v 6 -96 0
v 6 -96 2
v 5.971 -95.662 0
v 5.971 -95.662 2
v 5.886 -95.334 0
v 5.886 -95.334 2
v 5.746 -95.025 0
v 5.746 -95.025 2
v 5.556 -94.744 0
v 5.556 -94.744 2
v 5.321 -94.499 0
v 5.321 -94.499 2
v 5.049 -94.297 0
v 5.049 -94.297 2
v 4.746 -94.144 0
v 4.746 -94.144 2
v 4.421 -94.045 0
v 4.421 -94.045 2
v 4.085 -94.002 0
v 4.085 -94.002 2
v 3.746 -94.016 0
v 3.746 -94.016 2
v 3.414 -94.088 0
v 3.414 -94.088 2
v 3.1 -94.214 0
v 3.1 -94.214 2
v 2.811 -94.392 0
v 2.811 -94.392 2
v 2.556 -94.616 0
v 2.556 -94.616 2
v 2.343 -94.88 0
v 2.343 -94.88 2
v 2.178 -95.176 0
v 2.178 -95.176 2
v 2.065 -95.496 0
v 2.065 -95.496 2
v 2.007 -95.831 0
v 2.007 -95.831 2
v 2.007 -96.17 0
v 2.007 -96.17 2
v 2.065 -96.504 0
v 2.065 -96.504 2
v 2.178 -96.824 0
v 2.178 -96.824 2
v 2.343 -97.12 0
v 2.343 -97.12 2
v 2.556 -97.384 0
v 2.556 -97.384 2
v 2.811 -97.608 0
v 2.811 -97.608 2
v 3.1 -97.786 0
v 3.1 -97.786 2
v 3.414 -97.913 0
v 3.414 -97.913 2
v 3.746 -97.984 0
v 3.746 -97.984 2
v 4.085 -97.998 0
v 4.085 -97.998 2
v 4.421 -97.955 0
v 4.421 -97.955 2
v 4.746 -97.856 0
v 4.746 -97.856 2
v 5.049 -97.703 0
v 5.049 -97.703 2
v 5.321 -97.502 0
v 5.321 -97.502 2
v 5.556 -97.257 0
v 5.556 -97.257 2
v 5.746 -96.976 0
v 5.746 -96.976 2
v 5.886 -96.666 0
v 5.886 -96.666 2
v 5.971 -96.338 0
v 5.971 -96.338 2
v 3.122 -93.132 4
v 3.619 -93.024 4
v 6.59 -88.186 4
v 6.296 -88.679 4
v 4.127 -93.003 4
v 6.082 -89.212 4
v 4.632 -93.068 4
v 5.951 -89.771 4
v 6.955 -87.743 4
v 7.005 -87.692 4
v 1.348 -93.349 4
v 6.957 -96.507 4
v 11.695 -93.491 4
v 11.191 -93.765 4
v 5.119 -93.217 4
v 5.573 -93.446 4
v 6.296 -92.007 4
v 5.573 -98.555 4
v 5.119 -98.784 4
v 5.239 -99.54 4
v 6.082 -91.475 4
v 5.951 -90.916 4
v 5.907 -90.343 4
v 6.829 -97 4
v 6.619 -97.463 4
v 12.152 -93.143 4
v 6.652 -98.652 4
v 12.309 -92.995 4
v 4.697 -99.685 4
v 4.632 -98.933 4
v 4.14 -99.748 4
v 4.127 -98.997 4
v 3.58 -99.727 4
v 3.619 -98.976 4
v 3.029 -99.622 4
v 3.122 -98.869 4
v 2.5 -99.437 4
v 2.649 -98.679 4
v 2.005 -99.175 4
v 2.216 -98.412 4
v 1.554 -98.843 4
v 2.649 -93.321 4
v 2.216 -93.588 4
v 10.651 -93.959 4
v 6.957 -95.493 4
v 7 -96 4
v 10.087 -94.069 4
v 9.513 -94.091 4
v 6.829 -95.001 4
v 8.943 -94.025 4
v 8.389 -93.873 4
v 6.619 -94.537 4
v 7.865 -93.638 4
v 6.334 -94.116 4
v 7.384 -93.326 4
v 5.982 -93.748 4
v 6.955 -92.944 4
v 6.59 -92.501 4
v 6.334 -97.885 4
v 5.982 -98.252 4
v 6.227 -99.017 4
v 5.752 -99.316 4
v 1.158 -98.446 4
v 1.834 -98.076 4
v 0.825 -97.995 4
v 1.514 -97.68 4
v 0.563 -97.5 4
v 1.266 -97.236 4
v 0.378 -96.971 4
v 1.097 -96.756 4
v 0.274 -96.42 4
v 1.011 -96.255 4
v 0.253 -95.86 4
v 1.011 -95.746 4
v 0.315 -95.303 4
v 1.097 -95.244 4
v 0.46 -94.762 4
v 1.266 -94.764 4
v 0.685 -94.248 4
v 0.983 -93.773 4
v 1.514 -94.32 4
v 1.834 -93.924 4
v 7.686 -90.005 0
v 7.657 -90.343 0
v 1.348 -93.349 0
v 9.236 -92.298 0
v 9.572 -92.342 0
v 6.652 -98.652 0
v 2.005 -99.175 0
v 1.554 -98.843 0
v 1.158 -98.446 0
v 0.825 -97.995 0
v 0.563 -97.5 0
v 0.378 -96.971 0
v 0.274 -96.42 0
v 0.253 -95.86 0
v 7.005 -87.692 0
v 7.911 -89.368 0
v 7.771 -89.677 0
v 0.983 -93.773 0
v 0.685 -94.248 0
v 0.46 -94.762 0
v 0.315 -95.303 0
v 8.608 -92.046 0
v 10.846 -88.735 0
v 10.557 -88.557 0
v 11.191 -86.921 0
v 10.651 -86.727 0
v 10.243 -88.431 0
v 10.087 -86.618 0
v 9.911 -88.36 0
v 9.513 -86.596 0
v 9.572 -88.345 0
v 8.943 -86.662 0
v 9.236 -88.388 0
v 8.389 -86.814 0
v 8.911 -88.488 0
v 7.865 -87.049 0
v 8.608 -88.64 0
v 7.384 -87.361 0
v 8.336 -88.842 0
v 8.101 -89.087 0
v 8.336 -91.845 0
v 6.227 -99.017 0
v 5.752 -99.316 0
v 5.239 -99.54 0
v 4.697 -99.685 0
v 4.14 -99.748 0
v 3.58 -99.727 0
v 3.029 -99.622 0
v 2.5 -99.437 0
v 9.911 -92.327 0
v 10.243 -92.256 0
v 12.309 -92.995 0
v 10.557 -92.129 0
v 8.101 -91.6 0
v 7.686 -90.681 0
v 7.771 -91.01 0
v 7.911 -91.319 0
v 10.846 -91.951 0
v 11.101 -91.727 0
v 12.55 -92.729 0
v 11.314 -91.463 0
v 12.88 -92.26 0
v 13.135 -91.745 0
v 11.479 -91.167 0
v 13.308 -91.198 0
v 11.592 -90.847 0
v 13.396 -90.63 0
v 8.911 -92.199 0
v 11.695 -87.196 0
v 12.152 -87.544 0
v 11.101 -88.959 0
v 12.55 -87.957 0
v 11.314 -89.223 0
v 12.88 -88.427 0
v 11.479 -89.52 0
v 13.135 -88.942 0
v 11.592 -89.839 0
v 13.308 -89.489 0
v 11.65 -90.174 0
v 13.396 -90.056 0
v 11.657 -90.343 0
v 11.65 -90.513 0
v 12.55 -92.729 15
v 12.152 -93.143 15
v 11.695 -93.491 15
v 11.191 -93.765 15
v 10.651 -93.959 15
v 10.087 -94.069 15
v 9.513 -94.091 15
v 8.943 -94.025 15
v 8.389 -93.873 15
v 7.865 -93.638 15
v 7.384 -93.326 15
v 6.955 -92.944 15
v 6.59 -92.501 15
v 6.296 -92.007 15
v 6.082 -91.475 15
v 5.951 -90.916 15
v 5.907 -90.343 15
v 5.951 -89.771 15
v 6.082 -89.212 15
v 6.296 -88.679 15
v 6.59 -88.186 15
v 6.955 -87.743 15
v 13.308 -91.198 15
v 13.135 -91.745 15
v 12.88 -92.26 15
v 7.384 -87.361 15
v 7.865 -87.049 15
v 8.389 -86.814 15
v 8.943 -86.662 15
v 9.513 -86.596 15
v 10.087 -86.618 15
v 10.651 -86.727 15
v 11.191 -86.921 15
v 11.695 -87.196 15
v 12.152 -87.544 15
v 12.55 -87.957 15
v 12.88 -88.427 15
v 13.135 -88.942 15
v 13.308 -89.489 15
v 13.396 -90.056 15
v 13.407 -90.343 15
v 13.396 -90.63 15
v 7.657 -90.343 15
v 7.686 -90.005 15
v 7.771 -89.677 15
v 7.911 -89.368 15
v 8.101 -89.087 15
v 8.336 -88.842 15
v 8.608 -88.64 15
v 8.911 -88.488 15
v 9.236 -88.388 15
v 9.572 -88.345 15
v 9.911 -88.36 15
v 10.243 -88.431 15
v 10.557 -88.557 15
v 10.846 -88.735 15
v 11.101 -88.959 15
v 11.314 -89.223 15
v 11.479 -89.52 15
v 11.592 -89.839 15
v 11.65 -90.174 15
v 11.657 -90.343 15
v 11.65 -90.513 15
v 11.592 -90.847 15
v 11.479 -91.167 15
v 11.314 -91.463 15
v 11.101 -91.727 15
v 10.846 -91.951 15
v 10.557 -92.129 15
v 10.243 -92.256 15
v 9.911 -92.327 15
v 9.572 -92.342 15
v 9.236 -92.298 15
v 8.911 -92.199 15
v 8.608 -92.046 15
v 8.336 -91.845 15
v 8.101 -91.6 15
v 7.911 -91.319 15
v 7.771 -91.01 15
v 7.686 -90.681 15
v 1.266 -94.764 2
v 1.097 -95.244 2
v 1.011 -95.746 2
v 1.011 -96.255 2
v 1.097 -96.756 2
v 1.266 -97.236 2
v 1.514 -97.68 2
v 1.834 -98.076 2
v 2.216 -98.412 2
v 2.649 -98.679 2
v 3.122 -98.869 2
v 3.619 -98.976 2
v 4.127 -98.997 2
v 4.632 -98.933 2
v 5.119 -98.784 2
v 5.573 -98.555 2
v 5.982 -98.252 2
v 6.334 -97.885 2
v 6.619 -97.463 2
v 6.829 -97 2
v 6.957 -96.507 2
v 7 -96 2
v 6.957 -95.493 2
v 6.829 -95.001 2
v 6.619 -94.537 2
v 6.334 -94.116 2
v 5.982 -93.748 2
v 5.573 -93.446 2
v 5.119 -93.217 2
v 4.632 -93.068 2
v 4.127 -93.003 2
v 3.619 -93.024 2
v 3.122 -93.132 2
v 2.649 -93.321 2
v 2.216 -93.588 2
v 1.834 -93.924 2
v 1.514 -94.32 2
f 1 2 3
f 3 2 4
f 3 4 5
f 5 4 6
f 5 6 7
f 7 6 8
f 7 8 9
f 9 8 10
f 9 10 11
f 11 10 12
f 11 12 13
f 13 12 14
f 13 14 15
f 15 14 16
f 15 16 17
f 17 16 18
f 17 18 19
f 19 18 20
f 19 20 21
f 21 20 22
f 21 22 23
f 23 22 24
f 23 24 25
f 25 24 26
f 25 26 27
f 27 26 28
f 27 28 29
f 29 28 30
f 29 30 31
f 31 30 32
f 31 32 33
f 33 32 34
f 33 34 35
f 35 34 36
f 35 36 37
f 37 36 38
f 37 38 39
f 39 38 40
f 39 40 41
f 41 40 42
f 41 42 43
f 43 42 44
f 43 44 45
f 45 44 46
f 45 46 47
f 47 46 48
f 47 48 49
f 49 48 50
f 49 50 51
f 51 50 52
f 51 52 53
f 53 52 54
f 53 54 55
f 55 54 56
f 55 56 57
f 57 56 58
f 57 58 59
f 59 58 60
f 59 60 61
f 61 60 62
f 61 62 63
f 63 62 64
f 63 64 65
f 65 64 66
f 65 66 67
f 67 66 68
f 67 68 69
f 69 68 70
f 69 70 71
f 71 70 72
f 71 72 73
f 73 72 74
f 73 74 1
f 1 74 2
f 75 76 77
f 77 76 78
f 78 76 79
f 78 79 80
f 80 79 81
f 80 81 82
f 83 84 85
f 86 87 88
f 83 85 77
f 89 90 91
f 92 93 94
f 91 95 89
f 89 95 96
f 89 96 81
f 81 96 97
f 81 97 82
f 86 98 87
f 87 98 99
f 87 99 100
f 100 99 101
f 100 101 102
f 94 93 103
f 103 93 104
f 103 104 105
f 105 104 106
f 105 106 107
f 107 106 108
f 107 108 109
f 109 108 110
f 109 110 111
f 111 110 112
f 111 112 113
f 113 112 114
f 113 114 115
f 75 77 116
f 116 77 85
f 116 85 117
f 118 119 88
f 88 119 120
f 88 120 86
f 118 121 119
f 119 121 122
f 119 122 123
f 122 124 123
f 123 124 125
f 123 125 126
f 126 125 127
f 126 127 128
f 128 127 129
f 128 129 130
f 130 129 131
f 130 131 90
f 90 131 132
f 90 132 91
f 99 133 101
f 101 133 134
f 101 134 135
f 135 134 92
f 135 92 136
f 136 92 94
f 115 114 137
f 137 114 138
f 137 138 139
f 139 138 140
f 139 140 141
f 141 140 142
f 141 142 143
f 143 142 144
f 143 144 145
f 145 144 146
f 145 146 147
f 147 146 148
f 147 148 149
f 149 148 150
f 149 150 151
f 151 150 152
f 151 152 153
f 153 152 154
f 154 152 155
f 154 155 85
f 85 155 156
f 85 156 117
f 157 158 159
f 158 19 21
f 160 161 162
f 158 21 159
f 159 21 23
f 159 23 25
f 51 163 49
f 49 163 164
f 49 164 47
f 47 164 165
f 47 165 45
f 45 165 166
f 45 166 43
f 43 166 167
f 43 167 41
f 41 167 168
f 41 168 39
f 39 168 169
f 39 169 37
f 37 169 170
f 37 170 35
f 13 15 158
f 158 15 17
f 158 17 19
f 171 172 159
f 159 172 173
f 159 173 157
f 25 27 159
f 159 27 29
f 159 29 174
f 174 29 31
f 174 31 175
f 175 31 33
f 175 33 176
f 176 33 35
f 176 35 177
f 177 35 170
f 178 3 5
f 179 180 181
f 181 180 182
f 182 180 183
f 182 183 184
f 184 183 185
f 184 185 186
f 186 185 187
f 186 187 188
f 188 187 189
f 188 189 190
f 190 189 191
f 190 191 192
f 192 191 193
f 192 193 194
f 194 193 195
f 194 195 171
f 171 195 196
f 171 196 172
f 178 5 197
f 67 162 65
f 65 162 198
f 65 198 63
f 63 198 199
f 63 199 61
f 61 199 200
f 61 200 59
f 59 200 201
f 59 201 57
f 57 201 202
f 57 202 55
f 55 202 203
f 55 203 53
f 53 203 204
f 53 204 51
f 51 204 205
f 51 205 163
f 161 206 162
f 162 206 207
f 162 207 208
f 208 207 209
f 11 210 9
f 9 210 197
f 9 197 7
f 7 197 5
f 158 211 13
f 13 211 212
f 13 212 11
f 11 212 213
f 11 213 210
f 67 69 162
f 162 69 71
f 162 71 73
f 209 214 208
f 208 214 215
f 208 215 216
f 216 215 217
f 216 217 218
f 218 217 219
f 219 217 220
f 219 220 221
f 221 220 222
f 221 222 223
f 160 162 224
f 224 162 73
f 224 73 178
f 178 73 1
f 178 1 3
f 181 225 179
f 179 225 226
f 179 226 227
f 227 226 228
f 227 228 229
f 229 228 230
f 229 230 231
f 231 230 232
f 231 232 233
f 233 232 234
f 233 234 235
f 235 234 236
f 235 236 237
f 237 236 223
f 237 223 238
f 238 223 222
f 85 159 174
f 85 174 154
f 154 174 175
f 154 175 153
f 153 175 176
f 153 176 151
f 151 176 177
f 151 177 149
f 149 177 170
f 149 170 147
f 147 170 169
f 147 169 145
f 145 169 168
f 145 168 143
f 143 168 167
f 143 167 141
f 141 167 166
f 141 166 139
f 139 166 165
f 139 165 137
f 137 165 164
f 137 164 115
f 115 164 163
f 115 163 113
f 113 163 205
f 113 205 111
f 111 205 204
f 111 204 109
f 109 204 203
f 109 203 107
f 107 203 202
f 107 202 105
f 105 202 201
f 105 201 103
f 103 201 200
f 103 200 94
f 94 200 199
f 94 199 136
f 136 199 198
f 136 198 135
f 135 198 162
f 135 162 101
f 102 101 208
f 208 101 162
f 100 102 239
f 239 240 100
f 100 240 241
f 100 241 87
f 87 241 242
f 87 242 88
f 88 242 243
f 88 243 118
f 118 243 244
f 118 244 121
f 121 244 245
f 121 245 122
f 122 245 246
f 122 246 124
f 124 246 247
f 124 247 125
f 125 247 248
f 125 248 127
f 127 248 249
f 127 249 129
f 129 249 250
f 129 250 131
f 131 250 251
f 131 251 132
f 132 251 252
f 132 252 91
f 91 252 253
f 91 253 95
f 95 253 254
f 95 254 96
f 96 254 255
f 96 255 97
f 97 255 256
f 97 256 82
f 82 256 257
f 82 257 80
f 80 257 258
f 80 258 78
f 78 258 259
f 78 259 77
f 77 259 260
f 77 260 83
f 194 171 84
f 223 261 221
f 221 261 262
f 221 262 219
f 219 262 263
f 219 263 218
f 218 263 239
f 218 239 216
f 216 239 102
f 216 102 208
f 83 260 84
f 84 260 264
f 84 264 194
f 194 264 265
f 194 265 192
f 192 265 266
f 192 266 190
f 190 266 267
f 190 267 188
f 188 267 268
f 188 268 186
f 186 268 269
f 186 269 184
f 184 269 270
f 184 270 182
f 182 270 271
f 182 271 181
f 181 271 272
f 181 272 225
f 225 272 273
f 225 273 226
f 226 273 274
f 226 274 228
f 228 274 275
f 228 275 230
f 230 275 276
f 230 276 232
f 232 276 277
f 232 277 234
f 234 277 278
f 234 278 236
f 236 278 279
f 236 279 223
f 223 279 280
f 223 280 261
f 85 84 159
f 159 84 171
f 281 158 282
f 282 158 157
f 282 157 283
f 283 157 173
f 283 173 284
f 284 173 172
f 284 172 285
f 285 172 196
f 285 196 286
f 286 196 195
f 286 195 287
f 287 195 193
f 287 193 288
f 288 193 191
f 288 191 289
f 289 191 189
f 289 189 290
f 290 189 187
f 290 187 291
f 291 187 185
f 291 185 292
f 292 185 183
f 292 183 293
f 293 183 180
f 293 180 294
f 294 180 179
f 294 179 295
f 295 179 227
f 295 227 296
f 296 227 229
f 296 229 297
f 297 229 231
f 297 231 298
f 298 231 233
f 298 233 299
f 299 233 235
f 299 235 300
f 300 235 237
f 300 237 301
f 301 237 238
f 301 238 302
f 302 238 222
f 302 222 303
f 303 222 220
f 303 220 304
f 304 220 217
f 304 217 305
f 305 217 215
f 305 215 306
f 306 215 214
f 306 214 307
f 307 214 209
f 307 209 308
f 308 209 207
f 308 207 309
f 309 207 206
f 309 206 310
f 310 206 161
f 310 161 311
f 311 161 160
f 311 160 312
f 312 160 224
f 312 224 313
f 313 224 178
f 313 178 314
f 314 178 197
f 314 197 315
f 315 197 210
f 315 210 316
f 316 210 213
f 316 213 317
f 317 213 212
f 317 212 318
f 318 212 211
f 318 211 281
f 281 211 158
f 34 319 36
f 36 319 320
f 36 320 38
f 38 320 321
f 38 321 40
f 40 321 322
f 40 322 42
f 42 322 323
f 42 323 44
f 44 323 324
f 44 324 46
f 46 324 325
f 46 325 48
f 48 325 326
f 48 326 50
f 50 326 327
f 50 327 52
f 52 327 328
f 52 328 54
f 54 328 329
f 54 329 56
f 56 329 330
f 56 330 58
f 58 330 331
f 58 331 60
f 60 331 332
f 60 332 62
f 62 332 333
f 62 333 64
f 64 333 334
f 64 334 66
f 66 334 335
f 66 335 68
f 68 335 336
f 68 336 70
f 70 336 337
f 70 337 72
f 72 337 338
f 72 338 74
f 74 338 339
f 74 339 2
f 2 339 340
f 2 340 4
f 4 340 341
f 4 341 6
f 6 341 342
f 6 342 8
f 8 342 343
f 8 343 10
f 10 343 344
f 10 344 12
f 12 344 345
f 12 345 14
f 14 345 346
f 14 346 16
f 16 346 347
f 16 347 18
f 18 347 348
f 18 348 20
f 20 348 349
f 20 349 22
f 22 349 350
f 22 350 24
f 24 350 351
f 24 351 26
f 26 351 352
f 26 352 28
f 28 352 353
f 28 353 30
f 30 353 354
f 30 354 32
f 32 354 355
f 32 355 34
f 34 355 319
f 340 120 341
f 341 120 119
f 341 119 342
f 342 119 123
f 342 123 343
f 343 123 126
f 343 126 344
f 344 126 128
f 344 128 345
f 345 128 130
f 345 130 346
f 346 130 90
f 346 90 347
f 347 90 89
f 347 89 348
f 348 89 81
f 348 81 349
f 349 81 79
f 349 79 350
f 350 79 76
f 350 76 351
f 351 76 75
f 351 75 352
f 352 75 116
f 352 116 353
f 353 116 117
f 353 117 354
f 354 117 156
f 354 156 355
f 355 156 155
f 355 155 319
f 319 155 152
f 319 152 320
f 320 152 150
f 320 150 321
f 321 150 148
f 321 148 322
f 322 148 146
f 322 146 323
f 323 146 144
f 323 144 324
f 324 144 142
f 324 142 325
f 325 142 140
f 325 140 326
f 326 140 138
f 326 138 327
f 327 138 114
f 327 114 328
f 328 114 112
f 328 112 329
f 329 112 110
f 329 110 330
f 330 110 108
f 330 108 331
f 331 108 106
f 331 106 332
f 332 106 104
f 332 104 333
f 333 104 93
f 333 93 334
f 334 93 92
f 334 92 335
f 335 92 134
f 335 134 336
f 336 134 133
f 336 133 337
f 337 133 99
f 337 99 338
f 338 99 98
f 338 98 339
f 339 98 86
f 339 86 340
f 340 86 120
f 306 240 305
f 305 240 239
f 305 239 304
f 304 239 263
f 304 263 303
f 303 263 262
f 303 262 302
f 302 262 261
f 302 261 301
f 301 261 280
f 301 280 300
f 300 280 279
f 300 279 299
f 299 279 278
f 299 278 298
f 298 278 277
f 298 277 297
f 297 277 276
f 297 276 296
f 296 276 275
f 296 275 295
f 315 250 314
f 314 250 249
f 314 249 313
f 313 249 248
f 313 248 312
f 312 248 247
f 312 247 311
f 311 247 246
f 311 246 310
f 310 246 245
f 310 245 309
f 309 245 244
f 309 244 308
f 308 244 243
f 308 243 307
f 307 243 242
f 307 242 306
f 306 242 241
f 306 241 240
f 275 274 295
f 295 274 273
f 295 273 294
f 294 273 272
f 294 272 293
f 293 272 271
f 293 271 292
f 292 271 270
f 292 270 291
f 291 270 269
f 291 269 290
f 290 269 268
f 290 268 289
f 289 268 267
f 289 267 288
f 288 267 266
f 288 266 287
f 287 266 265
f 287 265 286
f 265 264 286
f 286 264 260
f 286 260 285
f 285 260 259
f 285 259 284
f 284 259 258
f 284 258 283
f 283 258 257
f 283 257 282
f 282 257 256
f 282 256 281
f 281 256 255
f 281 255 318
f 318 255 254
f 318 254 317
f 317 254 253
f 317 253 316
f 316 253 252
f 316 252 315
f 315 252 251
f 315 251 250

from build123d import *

# Parameters (mm, degrees)
SKETCH2_R           = 2
BOSS_EXTRUDE1_DEPTH = 4
SKETCH3_R           = 2
CUT_EXTRUDE1_DEPTH  = 4
SKETCH4_R           = 3
CUT_EXTRUDE2_DEPTH  = 2
SKETCH5_R           = 3.75
SKETCH5_R_2         = 2
BOSS_EXTRUDE2_DEPTH = 11


with BuildPart() as part:
    # Sketch2 → Boss-Extrude1 (new body)
    with BuildSketch(Plane.XY):
        with BuildLine():
            Line((1.348357032, -93.348542262), (7.005211484, -87.691688216))
            ThreePointArc((7.005211484, -87.691688216), (12.308512224, -87.691688287), (12.308512391, -92.994989027))
            Line((12.308512391, -92.994989027), (6.651658446, -98.651843581))
            ThreePointArc((6.651658446, -98.651843581), (1.348356961, -98.651843747), (1.348357032, -93.348542262))
        make_face()
        with Locations((9.656861819, -90.34333874)):
            Circle(SKETCH2_R, mode=Mode.SUBTRACT)
    extrude(amount=BOSS_EXTRUDE1_DEPTH)

    # Sketch3 → Cut-Extrude1 (cut)
    with BuildSketch(Plane.XY.offset(4)):
        with Locations((4.00000762, -96.00019304)):
            Circle(SKETCH3_R)
    extrude(amount=-CUT_EXTRUDE1_DEPTH, mode=Mode.SUBTRACT)

    # Sketch4 → Cut-Extrude2 (cut)
    with BuildSketch(Plane.XY.offset(4)):
        with Locations((4.00000762, -96.00019304)):
            Circle(SKETCH4_R)
    extrude(amount=-CUT_EXTRUDE2_DEPTH, mode=Mode.SUBTRACT)

    # Sketch5 → Boss-Extrude2 (add)
    with BuildSketch(Plane.XY.offset(4)):
        with Locations((9.656861819, -90.34333874)):
            Circle(SKETCH5_R)
        with Locations((9.656861819, -90.34333874)):
            Circle(SKETCH5_R_2, mode=Mode.SUBTRACT)
    extrude(amount=BOSS_EXTRUDE2_DEPTH)


solid = part.part
